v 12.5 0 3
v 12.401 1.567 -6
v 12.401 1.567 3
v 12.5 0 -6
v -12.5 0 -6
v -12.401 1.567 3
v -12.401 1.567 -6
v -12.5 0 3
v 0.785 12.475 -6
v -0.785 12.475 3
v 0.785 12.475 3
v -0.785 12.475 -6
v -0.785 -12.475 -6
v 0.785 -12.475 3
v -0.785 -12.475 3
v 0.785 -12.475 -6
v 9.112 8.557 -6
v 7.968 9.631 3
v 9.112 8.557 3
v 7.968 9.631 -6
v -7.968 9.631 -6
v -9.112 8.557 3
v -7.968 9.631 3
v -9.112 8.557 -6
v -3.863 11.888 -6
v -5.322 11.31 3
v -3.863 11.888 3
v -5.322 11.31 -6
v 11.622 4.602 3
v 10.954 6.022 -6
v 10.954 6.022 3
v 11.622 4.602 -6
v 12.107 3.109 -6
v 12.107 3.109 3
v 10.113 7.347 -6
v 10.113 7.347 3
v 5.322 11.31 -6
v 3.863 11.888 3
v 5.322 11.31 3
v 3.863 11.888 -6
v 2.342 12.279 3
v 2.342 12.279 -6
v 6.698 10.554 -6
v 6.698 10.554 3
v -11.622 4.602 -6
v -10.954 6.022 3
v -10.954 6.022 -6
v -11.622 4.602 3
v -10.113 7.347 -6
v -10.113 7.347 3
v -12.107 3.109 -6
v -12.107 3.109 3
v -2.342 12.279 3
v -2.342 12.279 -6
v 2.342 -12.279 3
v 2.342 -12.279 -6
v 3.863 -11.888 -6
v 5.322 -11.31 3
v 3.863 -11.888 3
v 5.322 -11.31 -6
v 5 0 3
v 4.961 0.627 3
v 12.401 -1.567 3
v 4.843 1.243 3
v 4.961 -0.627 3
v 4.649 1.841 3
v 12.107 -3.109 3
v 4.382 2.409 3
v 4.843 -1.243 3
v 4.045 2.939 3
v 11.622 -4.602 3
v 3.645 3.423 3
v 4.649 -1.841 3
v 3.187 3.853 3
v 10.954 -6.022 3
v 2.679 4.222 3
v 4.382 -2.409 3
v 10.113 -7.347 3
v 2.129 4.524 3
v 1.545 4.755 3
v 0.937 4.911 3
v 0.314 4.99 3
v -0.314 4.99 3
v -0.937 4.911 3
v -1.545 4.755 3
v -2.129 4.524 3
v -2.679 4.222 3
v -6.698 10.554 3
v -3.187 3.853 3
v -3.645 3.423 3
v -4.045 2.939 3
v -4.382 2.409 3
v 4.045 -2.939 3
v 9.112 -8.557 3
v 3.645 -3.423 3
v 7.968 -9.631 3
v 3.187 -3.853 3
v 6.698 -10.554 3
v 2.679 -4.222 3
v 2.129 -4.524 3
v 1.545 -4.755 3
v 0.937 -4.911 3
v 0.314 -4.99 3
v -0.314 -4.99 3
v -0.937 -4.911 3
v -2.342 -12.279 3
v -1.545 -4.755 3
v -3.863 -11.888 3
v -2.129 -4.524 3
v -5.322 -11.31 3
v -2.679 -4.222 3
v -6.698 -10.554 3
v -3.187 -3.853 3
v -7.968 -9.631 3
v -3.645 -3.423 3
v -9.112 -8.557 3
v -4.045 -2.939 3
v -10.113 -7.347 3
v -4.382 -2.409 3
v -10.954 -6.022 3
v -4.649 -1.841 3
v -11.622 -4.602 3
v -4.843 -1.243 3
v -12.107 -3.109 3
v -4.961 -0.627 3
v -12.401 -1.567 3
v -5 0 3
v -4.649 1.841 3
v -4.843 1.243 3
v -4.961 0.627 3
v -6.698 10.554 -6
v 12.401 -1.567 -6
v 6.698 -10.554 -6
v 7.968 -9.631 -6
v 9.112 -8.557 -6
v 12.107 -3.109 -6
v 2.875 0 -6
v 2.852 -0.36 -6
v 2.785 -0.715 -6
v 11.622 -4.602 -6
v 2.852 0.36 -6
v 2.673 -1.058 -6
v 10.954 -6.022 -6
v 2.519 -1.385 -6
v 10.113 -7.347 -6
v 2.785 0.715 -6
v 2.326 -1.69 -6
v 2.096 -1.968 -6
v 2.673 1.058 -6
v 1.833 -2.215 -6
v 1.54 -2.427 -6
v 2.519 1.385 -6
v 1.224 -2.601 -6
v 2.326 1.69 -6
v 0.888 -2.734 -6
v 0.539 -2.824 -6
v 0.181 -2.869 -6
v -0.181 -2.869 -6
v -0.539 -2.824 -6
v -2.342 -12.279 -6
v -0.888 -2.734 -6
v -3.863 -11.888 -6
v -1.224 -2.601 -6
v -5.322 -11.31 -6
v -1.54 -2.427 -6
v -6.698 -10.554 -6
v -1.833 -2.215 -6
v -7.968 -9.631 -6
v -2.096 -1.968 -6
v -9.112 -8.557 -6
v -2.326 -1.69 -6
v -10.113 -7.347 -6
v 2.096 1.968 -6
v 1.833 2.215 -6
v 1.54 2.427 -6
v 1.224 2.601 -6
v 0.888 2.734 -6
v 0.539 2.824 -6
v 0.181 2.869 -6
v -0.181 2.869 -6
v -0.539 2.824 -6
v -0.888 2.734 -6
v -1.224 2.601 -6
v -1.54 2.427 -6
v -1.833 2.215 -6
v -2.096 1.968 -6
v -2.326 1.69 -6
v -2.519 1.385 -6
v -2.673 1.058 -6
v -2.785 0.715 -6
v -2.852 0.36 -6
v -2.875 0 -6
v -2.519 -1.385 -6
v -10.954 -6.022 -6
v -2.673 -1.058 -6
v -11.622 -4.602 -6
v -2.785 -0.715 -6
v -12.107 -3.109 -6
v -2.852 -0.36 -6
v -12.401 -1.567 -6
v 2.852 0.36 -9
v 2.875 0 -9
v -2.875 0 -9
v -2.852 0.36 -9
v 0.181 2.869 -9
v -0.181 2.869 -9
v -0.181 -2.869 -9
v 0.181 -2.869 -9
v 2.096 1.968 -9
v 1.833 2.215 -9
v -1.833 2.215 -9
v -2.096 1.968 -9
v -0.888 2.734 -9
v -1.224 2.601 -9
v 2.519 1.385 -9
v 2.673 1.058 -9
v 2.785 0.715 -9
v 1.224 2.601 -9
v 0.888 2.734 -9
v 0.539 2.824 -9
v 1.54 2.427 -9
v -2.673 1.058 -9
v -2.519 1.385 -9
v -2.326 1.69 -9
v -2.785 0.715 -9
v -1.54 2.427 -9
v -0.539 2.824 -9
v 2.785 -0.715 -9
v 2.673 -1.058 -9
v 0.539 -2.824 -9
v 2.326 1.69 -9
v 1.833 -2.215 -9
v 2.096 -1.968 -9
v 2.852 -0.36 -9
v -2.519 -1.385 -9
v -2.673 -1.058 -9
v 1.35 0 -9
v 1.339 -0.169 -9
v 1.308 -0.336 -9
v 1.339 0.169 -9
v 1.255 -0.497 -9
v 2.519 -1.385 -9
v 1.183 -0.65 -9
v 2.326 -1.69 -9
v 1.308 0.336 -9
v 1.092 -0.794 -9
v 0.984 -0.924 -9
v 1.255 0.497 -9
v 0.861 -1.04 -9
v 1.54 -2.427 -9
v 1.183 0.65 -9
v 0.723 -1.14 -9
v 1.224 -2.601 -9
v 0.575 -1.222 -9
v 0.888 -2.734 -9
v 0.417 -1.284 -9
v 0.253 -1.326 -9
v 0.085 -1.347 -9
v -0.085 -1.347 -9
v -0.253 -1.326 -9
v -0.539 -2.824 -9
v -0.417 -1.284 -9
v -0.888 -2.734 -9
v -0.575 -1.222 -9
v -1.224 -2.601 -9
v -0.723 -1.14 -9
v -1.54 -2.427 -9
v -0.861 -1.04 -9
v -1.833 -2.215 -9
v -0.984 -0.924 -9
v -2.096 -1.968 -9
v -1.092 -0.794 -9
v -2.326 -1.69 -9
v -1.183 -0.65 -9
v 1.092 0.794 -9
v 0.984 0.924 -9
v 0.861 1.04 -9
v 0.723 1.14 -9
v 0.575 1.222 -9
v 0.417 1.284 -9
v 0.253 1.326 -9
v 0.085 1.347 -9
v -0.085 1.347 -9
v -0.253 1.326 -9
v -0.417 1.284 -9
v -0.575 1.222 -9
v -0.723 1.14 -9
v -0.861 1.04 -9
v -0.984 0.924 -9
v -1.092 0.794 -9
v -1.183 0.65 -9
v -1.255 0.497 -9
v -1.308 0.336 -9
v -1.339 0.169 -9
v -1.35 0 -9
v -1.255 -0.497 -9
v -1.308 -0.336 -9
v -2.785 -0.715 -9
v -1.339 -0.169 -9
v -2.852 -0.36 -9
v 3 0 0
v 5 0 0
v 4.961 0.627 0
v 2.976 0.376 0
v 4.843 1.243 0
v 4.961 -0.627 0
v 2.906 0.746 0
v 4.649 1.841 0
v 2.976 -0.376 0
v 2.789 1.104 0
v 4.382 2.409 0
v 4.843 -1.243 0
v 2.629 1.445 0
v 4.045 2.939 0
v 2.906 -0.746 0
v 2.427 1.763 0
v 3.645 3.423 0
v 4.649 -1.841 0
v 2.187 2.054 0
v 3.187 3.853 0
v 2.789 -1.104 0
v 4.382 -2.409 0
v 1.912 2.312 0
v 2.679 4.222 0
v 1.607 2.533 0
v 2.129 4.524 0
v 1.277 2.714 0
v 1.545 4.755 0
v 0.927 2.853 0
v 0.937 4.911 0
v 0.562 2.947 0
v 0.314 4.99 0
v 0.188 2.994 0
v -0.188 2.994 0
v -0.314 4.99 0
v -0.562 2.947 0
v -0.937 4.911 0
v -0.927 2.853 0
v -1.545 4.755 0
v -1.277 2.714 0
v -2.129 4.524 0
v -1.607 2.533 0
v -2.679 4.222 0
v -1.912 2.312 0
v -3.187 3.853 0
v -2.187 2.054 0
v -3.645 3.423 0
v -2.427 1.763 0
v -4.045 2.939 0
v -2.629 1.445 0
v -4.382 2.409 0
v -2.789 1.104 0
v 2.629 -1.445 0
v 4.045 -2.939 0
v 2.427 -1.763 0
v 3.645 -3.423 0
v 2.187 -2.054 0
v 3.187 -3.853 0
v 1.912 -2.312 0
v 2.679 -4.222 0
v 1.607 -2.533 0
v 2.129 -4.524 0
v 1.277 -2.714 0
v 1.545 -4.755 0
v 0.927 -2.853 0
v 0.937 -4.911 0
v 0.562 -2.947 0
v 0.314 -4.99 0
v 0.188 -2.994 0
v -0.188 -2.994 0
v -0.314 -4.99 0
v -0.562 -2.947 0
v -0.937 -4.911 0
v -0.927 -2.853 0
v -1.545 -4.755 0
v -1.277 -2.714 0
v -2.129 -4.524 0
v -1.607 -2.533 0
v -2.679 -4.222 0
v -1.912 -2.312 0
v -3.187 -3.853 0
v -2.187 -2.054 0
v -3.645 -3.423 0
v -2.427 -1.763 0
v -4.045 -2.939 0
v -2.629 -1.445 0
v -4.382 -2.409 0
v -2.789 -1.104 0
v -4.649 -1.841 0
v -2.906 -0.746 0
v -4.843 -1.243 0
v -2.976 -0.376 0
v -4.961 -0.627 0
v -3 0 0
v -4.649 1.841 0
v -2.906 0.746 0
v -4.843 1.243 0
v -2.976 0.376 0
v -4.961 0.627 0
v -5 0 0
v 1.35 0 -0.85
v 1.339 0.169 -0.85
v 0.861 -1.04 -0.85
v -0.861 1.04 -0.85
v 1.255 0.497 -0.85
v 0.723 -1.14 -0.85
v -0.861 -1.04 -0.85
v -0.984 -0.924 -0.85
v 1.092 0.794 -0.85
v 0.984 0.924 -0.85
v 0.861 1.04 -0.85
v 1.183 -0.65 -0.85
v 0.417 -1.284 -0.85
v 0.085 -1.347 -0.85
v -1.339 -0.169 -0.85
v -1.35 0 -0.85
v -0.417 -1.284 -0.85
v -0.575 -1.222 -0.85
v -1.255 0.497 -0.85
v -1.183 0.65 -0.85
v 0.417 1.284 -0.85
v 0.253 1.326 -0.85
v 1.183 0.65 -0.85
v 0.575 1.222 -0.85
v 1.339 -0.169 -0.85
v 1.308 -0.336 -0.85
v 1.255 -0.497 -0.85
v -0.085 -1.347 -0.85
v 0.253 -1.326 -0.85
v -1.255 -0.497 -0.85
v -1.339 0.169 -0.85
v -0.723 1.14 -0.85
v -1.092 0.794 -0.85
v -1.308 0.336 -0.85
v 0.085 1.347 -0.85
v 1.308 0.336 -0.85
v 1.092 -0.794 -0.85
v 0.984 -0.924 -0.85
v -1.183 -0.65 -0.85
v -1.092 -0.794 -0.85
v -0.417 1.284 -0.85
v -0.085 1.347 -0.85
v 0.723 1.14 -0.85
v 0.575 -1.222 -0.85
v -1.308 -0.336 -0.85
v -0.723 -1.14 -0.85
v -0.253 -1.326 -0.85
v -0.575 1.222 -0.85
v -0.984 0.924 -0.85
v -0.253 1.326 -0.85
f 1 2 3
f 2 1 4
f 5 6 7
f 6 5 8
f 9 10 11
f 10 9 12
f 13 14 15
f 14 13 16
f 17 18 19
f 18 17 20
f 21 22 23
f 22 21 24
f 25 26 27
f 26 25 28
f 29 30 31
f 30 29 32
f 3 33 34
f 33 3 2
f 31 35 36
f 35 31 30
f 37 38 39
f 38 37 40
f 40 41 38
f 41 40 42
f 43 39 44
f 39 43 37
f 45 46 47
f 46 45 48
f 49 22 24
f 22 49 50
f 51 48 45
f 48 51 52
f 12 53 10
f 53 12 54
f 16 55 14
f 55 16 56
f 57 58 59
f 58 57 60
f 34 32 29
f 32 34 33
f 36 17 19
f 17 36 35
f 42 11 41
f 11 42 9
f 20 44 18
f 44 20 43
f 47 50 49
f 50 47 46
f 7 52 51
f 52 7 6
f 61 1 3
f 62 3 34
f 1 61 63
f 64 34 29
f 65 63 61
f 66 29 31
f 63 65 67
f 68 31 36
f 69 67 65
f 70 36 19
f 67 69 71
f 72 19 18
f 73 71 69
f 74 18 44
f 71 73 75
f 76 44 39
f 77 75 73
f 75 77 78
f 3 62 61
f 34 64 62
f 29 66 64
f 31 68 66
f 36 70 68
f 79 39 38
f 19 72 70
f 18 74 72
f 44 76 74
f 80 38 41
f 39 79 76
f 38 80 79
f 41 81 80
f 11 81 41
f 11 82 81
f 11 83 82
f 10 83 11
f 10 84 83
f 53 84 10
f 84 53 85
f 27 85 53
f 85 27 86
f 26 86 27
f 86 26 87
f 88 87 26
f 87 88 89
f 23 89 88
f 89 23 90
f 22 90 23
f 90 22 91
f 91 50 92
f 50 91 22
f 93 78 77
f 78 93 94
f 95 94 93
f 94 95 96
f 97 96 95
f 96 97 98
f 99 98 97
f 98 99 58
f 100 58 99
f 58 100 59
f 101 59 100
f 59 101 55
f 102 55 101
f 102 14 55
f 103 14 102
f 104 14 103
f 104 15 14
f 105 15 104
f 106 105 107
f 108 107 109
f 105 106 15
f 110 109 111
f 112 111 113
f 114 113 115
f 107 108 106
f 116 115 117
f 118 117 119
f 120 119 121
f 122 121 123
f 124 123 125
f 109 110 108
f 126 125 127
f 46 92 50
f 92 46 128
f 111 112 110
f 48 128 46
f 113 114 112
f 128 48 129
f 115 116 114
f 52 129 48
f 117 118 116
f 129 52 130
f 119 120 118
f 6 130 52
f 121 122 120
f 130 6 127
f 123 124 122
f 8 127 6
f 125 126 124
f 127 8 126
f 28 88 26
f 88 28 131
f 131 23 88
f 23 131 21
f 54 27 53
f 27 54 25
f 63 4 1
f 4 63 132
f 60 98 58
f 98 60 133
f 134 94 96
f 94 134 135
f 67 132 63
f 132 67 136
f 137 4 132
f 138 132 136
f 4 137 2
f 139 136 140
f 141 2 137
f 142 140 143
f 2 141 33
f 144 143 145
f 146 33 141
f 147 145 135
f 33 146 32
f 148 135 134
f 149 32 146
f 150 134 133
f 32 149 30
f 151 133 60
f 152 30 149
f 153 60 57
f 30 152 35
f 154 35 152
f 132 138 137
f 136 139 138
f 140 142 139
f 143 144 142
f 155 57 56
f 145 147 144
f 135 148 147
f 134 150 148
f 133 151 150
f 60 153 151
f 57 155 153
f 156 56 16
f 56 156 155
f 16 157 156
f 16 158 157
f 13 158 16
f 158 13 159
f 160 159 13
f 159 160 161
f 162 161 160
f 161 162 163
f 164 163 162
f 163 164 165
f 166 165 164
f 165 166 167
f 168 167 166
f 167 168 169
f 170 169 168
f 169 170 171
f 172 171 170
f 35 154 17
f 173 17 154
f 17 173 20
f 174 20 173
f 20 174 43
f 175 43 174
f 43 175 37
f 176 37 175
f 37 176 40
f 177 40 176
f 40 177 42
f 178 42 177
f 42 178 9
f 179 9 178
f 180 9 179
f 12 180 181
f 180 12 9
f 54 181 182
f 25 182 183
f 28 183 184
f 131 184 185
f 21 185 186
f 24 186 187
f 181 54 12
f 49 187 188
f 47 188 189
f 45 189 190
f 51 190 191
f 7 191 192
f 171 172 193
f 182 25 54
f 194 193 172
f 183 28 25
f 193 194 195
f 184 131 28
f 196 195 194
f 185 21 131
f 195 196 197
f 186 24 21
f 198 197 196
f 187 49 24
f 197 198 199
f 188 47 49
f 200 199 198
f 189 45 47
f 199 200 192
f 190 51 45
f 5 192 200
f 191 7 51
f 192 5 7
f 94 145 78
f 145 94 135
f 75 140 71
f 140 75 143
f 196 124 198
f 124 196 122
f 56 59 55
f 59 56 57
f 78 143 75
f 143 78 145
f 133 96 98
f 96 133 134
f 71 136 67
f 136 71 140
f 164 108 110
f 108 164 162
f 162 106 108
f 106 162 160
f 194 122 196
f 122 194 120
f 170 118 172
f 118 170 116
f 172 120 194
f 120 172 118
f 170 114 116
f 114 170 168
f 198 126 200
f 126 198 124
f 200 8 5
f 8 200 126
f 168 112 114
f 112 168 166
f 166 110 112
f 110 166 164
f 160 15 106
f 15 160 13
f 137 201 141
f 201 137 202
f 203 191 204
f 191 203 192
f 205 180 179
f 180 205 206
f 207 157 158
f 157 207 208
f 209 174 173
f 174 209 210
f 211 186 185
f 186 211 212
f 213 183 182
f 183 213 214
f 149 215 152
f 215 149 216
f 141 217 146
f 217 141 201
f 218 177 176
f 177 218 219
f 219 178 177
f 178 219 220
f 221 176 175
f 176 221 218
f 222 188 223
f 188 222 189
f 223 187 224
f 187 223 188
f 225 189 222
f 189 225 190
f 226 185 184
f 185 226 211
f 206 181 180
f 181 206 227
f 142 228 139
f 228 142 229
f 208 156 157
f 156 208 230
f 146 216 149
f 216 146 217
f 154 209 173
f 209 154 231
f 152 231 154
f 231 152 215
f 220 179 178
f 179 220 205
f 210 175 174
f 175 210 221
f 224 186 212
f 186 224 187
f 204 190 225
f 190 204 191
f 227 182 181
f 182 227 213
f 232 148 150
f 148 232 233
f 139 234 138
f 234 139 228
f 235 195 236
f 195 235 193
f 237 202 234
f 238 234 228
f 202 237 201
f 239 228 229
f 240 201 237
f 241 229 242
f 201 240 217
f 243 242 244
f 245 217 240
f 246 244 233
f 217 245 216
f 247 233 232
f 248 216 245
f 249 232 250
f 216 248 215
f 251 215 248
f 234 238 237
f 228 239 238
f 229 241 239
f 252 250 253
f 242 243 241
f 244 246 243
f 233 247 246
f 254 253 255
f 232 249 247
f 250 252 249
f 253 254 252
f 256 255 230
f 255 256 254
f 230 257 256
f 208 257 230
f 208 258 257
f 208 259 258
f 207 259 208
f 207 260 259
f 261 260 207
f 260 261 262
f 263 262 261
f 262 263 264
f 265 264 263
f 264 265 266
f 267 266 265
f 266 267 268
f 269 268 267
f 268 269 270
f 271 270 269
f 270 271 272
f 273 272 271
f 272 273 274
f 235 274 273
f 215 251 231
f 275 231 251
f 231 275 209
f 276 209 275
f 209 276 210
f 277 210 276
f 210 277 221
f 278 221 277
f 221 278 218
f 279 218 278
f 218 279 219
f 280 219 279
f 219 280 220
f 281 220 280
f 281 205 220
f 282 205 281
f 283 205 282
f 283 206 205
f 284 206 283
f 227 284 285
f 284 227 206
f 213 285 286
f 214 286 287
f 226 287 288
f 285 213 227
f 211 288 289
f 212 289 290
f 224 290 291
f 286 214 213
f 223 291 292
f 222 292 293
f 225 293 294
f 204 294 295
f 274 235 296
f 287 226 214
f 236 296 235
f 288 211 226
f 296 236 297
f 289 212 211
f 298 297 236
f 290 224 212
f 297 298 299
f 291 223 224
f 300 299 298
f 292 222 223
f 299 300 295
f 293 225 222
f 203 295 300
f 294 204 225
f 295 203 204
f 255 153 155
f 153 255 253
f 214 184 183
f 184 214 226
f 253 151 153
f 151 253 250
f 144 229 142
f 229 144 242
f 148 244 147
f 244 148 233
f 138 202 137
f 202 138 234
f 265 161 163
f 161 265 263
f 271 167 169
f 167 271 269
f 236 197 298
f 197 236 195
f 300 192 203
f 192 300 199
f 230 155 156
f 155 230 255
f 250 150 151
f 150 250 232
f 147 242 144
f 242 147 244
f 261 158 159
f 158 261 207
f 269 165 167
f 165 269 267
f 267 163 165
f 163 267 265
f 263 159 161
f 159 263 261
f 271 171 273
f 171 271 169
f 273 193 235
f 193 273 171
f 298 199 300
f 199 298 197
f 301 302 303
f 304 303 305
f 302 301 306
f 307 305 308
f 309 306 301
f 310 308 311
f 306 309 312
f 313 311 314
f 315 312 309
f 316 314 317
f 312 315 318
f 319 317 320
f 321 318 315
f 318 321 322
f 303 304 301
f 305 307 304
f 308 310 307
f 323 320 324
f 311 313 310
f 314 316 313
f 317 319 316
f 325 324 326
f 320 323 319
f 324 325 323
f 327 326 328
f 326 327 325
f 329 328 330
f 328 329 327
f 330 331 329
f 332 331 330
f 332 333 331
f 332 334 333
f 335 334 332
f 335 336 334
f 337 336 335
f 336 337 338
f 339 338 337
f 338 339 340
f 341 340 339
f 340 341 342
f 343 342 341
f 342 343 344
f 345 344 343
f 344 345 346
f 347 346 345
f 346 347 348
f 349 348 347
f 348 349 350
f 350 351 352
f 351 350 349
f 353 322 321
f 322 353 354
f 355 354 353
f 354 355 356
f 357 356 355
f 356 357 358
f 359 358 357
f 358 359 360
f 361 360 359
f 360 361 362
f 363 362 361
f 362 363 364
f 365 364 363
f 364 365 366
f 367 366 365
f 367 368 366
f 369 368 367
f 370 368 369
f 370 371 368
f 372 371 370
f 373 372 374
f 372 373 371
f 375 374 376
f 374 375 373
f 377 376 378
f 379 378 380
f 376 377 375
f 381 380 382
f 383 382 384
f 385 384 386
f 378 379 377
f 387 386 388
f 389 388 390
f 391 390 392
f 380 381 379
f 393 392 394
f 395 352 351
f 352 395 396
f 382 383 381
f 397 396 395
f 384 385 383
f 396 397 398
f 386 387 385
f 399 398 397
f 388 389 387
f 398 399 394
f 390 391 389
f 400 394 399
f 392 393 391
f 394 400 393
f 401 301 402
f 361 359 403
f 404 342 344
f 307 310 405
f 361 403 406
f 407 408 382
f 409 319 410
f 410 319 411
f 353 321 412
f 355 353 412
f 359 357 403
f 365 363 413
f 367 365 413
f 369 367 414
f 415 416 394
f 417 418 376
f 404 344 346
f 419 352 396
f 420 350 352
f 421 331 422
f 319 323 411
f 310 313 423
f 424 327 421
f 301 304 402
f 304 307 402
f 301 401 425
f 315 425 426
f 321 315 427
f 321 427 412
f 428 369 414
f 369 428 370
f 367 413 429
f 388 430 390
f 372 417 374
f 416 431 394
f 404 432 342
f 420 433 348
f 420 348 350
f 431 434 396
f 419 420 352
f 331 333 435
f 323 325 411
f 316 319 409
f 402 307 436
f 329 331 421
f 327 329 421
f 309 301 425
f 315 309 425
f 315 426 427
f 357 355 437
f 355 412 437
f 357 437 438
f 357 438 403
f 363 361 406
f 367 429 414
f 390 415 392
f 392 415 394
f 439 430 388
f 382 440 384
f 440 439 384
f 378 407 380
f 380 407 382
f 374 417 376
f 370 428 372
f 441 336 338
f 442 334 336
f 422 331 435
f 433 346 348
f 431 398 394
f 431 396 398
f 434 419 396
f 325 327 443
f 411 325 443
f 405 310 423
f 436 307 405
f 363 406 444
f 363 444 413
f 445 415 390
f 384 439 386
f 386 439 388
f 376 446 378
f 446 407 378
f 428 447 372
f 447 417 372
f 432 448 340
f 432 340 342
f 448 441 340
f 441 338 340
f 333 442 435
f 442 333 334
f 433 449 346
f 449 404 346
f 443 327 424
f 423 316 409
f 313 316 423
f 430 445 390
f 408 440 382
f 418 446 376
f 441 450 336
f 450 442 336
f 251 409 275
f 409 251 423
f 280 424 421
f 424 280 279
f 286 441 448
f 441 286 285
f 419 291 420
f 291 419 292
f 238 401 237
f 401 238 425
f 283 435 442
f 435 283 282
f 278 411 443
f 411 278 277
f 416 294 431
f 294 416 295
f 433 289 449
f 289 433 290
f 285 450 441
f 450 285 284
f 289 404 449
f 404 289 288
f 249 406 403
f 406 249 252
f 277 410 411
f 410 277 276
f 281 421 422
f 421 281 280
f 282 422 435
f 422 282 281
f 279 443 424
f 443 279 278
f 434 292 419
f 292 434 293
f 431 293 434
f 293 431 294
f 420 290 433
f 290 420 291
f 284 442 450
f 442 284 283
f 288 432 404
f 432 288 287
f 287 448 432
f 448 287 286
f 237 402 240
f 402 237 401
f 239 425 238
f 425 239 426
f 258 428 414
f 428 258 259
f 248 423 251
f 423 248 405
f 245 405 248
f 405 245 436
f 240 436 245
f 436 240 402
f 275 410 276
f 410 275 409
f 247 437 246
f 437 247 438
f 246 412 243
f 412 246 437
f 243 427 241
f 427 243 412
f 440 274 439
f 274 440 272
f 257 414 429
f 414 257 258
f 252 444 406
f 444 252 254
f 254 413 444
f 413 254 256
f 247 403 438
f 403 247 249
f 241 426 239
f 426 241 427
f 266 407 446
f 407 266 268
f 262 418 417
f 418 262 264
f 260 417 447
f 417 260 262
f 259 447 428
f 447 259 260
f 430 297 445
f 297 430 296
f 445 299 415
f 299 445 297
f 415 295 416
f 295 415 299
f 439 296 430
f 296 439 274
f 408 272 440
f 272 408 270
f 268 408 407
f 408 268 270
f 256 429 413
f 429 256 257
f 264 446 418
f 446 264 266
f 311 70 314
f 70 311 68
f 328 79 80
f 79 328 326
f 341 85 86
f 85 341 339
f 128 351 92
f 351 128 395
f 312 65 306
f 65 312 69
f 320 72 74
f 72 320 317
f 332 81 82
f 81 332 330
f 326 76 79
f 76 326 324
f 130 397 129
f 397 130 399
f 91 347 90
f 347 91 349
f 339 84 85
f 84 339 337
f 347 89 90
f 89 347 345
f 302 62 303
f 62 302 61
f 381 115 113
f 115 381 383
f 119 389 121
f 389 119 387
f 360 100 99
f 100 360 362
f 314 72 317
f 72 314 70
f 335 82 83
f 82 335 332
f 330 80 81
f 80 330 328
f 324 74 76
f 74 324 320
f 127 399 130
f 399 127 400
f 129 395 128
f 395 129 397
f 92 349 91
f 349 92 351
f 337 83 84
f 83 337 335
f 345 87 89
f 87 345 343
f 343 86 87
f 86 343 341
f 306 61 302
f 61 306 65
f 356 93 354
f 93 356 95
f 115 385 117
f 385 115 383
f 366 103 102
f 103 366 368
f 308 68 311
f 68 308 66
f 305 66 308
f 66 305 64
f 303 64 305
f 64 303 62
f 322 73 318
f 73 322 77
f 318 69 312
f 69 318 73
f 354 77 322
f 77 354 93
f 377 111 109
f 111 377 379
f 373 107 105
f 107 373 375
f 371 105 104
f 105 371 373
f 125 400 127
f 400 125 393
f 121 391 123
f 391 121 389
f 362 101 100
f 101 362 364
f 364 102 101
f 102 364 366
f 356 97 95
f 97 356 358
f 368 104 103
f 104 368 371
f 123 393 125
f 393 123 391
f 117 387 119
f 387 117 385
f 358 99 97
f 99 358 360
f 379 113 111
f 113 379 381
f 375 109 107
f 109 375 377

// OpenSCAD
$fn = 50;

difference() {
	union() {
		translate(v = [0, 0, -6.0]) {
			cylinder(h = 9, r = 12.5);
		}
		#translate(v = [0, 0, -9.0]) {
			cylinder(h = 9, r = 2.875);
		}
	}
	union() {
		translate(v = [0, 0, 0]) {
			rotate(a = [0, 0, 0]) {
				difference() {
					union() {
						translate(v = [0, 0, -9.0]) {
							cylinder(h = 9, r = 1.0);
						}
						translate(v = [0, 0, -0.85]) {
							cylinder(h = 0.85, r1 = 1.35, r2 = 3.0);
						}
						translate(v = [0, 0, -9.0]) {
							cylinder(h = 9, r = 1.35);
						}
						translate(v = [0, 0, -9.0]) {
							cylinder(h = 9, r = 1.0);
						}
					}
					union();
				}
			}
		}
		#cylinder(h = 3, r = 5.0);
	}
}
